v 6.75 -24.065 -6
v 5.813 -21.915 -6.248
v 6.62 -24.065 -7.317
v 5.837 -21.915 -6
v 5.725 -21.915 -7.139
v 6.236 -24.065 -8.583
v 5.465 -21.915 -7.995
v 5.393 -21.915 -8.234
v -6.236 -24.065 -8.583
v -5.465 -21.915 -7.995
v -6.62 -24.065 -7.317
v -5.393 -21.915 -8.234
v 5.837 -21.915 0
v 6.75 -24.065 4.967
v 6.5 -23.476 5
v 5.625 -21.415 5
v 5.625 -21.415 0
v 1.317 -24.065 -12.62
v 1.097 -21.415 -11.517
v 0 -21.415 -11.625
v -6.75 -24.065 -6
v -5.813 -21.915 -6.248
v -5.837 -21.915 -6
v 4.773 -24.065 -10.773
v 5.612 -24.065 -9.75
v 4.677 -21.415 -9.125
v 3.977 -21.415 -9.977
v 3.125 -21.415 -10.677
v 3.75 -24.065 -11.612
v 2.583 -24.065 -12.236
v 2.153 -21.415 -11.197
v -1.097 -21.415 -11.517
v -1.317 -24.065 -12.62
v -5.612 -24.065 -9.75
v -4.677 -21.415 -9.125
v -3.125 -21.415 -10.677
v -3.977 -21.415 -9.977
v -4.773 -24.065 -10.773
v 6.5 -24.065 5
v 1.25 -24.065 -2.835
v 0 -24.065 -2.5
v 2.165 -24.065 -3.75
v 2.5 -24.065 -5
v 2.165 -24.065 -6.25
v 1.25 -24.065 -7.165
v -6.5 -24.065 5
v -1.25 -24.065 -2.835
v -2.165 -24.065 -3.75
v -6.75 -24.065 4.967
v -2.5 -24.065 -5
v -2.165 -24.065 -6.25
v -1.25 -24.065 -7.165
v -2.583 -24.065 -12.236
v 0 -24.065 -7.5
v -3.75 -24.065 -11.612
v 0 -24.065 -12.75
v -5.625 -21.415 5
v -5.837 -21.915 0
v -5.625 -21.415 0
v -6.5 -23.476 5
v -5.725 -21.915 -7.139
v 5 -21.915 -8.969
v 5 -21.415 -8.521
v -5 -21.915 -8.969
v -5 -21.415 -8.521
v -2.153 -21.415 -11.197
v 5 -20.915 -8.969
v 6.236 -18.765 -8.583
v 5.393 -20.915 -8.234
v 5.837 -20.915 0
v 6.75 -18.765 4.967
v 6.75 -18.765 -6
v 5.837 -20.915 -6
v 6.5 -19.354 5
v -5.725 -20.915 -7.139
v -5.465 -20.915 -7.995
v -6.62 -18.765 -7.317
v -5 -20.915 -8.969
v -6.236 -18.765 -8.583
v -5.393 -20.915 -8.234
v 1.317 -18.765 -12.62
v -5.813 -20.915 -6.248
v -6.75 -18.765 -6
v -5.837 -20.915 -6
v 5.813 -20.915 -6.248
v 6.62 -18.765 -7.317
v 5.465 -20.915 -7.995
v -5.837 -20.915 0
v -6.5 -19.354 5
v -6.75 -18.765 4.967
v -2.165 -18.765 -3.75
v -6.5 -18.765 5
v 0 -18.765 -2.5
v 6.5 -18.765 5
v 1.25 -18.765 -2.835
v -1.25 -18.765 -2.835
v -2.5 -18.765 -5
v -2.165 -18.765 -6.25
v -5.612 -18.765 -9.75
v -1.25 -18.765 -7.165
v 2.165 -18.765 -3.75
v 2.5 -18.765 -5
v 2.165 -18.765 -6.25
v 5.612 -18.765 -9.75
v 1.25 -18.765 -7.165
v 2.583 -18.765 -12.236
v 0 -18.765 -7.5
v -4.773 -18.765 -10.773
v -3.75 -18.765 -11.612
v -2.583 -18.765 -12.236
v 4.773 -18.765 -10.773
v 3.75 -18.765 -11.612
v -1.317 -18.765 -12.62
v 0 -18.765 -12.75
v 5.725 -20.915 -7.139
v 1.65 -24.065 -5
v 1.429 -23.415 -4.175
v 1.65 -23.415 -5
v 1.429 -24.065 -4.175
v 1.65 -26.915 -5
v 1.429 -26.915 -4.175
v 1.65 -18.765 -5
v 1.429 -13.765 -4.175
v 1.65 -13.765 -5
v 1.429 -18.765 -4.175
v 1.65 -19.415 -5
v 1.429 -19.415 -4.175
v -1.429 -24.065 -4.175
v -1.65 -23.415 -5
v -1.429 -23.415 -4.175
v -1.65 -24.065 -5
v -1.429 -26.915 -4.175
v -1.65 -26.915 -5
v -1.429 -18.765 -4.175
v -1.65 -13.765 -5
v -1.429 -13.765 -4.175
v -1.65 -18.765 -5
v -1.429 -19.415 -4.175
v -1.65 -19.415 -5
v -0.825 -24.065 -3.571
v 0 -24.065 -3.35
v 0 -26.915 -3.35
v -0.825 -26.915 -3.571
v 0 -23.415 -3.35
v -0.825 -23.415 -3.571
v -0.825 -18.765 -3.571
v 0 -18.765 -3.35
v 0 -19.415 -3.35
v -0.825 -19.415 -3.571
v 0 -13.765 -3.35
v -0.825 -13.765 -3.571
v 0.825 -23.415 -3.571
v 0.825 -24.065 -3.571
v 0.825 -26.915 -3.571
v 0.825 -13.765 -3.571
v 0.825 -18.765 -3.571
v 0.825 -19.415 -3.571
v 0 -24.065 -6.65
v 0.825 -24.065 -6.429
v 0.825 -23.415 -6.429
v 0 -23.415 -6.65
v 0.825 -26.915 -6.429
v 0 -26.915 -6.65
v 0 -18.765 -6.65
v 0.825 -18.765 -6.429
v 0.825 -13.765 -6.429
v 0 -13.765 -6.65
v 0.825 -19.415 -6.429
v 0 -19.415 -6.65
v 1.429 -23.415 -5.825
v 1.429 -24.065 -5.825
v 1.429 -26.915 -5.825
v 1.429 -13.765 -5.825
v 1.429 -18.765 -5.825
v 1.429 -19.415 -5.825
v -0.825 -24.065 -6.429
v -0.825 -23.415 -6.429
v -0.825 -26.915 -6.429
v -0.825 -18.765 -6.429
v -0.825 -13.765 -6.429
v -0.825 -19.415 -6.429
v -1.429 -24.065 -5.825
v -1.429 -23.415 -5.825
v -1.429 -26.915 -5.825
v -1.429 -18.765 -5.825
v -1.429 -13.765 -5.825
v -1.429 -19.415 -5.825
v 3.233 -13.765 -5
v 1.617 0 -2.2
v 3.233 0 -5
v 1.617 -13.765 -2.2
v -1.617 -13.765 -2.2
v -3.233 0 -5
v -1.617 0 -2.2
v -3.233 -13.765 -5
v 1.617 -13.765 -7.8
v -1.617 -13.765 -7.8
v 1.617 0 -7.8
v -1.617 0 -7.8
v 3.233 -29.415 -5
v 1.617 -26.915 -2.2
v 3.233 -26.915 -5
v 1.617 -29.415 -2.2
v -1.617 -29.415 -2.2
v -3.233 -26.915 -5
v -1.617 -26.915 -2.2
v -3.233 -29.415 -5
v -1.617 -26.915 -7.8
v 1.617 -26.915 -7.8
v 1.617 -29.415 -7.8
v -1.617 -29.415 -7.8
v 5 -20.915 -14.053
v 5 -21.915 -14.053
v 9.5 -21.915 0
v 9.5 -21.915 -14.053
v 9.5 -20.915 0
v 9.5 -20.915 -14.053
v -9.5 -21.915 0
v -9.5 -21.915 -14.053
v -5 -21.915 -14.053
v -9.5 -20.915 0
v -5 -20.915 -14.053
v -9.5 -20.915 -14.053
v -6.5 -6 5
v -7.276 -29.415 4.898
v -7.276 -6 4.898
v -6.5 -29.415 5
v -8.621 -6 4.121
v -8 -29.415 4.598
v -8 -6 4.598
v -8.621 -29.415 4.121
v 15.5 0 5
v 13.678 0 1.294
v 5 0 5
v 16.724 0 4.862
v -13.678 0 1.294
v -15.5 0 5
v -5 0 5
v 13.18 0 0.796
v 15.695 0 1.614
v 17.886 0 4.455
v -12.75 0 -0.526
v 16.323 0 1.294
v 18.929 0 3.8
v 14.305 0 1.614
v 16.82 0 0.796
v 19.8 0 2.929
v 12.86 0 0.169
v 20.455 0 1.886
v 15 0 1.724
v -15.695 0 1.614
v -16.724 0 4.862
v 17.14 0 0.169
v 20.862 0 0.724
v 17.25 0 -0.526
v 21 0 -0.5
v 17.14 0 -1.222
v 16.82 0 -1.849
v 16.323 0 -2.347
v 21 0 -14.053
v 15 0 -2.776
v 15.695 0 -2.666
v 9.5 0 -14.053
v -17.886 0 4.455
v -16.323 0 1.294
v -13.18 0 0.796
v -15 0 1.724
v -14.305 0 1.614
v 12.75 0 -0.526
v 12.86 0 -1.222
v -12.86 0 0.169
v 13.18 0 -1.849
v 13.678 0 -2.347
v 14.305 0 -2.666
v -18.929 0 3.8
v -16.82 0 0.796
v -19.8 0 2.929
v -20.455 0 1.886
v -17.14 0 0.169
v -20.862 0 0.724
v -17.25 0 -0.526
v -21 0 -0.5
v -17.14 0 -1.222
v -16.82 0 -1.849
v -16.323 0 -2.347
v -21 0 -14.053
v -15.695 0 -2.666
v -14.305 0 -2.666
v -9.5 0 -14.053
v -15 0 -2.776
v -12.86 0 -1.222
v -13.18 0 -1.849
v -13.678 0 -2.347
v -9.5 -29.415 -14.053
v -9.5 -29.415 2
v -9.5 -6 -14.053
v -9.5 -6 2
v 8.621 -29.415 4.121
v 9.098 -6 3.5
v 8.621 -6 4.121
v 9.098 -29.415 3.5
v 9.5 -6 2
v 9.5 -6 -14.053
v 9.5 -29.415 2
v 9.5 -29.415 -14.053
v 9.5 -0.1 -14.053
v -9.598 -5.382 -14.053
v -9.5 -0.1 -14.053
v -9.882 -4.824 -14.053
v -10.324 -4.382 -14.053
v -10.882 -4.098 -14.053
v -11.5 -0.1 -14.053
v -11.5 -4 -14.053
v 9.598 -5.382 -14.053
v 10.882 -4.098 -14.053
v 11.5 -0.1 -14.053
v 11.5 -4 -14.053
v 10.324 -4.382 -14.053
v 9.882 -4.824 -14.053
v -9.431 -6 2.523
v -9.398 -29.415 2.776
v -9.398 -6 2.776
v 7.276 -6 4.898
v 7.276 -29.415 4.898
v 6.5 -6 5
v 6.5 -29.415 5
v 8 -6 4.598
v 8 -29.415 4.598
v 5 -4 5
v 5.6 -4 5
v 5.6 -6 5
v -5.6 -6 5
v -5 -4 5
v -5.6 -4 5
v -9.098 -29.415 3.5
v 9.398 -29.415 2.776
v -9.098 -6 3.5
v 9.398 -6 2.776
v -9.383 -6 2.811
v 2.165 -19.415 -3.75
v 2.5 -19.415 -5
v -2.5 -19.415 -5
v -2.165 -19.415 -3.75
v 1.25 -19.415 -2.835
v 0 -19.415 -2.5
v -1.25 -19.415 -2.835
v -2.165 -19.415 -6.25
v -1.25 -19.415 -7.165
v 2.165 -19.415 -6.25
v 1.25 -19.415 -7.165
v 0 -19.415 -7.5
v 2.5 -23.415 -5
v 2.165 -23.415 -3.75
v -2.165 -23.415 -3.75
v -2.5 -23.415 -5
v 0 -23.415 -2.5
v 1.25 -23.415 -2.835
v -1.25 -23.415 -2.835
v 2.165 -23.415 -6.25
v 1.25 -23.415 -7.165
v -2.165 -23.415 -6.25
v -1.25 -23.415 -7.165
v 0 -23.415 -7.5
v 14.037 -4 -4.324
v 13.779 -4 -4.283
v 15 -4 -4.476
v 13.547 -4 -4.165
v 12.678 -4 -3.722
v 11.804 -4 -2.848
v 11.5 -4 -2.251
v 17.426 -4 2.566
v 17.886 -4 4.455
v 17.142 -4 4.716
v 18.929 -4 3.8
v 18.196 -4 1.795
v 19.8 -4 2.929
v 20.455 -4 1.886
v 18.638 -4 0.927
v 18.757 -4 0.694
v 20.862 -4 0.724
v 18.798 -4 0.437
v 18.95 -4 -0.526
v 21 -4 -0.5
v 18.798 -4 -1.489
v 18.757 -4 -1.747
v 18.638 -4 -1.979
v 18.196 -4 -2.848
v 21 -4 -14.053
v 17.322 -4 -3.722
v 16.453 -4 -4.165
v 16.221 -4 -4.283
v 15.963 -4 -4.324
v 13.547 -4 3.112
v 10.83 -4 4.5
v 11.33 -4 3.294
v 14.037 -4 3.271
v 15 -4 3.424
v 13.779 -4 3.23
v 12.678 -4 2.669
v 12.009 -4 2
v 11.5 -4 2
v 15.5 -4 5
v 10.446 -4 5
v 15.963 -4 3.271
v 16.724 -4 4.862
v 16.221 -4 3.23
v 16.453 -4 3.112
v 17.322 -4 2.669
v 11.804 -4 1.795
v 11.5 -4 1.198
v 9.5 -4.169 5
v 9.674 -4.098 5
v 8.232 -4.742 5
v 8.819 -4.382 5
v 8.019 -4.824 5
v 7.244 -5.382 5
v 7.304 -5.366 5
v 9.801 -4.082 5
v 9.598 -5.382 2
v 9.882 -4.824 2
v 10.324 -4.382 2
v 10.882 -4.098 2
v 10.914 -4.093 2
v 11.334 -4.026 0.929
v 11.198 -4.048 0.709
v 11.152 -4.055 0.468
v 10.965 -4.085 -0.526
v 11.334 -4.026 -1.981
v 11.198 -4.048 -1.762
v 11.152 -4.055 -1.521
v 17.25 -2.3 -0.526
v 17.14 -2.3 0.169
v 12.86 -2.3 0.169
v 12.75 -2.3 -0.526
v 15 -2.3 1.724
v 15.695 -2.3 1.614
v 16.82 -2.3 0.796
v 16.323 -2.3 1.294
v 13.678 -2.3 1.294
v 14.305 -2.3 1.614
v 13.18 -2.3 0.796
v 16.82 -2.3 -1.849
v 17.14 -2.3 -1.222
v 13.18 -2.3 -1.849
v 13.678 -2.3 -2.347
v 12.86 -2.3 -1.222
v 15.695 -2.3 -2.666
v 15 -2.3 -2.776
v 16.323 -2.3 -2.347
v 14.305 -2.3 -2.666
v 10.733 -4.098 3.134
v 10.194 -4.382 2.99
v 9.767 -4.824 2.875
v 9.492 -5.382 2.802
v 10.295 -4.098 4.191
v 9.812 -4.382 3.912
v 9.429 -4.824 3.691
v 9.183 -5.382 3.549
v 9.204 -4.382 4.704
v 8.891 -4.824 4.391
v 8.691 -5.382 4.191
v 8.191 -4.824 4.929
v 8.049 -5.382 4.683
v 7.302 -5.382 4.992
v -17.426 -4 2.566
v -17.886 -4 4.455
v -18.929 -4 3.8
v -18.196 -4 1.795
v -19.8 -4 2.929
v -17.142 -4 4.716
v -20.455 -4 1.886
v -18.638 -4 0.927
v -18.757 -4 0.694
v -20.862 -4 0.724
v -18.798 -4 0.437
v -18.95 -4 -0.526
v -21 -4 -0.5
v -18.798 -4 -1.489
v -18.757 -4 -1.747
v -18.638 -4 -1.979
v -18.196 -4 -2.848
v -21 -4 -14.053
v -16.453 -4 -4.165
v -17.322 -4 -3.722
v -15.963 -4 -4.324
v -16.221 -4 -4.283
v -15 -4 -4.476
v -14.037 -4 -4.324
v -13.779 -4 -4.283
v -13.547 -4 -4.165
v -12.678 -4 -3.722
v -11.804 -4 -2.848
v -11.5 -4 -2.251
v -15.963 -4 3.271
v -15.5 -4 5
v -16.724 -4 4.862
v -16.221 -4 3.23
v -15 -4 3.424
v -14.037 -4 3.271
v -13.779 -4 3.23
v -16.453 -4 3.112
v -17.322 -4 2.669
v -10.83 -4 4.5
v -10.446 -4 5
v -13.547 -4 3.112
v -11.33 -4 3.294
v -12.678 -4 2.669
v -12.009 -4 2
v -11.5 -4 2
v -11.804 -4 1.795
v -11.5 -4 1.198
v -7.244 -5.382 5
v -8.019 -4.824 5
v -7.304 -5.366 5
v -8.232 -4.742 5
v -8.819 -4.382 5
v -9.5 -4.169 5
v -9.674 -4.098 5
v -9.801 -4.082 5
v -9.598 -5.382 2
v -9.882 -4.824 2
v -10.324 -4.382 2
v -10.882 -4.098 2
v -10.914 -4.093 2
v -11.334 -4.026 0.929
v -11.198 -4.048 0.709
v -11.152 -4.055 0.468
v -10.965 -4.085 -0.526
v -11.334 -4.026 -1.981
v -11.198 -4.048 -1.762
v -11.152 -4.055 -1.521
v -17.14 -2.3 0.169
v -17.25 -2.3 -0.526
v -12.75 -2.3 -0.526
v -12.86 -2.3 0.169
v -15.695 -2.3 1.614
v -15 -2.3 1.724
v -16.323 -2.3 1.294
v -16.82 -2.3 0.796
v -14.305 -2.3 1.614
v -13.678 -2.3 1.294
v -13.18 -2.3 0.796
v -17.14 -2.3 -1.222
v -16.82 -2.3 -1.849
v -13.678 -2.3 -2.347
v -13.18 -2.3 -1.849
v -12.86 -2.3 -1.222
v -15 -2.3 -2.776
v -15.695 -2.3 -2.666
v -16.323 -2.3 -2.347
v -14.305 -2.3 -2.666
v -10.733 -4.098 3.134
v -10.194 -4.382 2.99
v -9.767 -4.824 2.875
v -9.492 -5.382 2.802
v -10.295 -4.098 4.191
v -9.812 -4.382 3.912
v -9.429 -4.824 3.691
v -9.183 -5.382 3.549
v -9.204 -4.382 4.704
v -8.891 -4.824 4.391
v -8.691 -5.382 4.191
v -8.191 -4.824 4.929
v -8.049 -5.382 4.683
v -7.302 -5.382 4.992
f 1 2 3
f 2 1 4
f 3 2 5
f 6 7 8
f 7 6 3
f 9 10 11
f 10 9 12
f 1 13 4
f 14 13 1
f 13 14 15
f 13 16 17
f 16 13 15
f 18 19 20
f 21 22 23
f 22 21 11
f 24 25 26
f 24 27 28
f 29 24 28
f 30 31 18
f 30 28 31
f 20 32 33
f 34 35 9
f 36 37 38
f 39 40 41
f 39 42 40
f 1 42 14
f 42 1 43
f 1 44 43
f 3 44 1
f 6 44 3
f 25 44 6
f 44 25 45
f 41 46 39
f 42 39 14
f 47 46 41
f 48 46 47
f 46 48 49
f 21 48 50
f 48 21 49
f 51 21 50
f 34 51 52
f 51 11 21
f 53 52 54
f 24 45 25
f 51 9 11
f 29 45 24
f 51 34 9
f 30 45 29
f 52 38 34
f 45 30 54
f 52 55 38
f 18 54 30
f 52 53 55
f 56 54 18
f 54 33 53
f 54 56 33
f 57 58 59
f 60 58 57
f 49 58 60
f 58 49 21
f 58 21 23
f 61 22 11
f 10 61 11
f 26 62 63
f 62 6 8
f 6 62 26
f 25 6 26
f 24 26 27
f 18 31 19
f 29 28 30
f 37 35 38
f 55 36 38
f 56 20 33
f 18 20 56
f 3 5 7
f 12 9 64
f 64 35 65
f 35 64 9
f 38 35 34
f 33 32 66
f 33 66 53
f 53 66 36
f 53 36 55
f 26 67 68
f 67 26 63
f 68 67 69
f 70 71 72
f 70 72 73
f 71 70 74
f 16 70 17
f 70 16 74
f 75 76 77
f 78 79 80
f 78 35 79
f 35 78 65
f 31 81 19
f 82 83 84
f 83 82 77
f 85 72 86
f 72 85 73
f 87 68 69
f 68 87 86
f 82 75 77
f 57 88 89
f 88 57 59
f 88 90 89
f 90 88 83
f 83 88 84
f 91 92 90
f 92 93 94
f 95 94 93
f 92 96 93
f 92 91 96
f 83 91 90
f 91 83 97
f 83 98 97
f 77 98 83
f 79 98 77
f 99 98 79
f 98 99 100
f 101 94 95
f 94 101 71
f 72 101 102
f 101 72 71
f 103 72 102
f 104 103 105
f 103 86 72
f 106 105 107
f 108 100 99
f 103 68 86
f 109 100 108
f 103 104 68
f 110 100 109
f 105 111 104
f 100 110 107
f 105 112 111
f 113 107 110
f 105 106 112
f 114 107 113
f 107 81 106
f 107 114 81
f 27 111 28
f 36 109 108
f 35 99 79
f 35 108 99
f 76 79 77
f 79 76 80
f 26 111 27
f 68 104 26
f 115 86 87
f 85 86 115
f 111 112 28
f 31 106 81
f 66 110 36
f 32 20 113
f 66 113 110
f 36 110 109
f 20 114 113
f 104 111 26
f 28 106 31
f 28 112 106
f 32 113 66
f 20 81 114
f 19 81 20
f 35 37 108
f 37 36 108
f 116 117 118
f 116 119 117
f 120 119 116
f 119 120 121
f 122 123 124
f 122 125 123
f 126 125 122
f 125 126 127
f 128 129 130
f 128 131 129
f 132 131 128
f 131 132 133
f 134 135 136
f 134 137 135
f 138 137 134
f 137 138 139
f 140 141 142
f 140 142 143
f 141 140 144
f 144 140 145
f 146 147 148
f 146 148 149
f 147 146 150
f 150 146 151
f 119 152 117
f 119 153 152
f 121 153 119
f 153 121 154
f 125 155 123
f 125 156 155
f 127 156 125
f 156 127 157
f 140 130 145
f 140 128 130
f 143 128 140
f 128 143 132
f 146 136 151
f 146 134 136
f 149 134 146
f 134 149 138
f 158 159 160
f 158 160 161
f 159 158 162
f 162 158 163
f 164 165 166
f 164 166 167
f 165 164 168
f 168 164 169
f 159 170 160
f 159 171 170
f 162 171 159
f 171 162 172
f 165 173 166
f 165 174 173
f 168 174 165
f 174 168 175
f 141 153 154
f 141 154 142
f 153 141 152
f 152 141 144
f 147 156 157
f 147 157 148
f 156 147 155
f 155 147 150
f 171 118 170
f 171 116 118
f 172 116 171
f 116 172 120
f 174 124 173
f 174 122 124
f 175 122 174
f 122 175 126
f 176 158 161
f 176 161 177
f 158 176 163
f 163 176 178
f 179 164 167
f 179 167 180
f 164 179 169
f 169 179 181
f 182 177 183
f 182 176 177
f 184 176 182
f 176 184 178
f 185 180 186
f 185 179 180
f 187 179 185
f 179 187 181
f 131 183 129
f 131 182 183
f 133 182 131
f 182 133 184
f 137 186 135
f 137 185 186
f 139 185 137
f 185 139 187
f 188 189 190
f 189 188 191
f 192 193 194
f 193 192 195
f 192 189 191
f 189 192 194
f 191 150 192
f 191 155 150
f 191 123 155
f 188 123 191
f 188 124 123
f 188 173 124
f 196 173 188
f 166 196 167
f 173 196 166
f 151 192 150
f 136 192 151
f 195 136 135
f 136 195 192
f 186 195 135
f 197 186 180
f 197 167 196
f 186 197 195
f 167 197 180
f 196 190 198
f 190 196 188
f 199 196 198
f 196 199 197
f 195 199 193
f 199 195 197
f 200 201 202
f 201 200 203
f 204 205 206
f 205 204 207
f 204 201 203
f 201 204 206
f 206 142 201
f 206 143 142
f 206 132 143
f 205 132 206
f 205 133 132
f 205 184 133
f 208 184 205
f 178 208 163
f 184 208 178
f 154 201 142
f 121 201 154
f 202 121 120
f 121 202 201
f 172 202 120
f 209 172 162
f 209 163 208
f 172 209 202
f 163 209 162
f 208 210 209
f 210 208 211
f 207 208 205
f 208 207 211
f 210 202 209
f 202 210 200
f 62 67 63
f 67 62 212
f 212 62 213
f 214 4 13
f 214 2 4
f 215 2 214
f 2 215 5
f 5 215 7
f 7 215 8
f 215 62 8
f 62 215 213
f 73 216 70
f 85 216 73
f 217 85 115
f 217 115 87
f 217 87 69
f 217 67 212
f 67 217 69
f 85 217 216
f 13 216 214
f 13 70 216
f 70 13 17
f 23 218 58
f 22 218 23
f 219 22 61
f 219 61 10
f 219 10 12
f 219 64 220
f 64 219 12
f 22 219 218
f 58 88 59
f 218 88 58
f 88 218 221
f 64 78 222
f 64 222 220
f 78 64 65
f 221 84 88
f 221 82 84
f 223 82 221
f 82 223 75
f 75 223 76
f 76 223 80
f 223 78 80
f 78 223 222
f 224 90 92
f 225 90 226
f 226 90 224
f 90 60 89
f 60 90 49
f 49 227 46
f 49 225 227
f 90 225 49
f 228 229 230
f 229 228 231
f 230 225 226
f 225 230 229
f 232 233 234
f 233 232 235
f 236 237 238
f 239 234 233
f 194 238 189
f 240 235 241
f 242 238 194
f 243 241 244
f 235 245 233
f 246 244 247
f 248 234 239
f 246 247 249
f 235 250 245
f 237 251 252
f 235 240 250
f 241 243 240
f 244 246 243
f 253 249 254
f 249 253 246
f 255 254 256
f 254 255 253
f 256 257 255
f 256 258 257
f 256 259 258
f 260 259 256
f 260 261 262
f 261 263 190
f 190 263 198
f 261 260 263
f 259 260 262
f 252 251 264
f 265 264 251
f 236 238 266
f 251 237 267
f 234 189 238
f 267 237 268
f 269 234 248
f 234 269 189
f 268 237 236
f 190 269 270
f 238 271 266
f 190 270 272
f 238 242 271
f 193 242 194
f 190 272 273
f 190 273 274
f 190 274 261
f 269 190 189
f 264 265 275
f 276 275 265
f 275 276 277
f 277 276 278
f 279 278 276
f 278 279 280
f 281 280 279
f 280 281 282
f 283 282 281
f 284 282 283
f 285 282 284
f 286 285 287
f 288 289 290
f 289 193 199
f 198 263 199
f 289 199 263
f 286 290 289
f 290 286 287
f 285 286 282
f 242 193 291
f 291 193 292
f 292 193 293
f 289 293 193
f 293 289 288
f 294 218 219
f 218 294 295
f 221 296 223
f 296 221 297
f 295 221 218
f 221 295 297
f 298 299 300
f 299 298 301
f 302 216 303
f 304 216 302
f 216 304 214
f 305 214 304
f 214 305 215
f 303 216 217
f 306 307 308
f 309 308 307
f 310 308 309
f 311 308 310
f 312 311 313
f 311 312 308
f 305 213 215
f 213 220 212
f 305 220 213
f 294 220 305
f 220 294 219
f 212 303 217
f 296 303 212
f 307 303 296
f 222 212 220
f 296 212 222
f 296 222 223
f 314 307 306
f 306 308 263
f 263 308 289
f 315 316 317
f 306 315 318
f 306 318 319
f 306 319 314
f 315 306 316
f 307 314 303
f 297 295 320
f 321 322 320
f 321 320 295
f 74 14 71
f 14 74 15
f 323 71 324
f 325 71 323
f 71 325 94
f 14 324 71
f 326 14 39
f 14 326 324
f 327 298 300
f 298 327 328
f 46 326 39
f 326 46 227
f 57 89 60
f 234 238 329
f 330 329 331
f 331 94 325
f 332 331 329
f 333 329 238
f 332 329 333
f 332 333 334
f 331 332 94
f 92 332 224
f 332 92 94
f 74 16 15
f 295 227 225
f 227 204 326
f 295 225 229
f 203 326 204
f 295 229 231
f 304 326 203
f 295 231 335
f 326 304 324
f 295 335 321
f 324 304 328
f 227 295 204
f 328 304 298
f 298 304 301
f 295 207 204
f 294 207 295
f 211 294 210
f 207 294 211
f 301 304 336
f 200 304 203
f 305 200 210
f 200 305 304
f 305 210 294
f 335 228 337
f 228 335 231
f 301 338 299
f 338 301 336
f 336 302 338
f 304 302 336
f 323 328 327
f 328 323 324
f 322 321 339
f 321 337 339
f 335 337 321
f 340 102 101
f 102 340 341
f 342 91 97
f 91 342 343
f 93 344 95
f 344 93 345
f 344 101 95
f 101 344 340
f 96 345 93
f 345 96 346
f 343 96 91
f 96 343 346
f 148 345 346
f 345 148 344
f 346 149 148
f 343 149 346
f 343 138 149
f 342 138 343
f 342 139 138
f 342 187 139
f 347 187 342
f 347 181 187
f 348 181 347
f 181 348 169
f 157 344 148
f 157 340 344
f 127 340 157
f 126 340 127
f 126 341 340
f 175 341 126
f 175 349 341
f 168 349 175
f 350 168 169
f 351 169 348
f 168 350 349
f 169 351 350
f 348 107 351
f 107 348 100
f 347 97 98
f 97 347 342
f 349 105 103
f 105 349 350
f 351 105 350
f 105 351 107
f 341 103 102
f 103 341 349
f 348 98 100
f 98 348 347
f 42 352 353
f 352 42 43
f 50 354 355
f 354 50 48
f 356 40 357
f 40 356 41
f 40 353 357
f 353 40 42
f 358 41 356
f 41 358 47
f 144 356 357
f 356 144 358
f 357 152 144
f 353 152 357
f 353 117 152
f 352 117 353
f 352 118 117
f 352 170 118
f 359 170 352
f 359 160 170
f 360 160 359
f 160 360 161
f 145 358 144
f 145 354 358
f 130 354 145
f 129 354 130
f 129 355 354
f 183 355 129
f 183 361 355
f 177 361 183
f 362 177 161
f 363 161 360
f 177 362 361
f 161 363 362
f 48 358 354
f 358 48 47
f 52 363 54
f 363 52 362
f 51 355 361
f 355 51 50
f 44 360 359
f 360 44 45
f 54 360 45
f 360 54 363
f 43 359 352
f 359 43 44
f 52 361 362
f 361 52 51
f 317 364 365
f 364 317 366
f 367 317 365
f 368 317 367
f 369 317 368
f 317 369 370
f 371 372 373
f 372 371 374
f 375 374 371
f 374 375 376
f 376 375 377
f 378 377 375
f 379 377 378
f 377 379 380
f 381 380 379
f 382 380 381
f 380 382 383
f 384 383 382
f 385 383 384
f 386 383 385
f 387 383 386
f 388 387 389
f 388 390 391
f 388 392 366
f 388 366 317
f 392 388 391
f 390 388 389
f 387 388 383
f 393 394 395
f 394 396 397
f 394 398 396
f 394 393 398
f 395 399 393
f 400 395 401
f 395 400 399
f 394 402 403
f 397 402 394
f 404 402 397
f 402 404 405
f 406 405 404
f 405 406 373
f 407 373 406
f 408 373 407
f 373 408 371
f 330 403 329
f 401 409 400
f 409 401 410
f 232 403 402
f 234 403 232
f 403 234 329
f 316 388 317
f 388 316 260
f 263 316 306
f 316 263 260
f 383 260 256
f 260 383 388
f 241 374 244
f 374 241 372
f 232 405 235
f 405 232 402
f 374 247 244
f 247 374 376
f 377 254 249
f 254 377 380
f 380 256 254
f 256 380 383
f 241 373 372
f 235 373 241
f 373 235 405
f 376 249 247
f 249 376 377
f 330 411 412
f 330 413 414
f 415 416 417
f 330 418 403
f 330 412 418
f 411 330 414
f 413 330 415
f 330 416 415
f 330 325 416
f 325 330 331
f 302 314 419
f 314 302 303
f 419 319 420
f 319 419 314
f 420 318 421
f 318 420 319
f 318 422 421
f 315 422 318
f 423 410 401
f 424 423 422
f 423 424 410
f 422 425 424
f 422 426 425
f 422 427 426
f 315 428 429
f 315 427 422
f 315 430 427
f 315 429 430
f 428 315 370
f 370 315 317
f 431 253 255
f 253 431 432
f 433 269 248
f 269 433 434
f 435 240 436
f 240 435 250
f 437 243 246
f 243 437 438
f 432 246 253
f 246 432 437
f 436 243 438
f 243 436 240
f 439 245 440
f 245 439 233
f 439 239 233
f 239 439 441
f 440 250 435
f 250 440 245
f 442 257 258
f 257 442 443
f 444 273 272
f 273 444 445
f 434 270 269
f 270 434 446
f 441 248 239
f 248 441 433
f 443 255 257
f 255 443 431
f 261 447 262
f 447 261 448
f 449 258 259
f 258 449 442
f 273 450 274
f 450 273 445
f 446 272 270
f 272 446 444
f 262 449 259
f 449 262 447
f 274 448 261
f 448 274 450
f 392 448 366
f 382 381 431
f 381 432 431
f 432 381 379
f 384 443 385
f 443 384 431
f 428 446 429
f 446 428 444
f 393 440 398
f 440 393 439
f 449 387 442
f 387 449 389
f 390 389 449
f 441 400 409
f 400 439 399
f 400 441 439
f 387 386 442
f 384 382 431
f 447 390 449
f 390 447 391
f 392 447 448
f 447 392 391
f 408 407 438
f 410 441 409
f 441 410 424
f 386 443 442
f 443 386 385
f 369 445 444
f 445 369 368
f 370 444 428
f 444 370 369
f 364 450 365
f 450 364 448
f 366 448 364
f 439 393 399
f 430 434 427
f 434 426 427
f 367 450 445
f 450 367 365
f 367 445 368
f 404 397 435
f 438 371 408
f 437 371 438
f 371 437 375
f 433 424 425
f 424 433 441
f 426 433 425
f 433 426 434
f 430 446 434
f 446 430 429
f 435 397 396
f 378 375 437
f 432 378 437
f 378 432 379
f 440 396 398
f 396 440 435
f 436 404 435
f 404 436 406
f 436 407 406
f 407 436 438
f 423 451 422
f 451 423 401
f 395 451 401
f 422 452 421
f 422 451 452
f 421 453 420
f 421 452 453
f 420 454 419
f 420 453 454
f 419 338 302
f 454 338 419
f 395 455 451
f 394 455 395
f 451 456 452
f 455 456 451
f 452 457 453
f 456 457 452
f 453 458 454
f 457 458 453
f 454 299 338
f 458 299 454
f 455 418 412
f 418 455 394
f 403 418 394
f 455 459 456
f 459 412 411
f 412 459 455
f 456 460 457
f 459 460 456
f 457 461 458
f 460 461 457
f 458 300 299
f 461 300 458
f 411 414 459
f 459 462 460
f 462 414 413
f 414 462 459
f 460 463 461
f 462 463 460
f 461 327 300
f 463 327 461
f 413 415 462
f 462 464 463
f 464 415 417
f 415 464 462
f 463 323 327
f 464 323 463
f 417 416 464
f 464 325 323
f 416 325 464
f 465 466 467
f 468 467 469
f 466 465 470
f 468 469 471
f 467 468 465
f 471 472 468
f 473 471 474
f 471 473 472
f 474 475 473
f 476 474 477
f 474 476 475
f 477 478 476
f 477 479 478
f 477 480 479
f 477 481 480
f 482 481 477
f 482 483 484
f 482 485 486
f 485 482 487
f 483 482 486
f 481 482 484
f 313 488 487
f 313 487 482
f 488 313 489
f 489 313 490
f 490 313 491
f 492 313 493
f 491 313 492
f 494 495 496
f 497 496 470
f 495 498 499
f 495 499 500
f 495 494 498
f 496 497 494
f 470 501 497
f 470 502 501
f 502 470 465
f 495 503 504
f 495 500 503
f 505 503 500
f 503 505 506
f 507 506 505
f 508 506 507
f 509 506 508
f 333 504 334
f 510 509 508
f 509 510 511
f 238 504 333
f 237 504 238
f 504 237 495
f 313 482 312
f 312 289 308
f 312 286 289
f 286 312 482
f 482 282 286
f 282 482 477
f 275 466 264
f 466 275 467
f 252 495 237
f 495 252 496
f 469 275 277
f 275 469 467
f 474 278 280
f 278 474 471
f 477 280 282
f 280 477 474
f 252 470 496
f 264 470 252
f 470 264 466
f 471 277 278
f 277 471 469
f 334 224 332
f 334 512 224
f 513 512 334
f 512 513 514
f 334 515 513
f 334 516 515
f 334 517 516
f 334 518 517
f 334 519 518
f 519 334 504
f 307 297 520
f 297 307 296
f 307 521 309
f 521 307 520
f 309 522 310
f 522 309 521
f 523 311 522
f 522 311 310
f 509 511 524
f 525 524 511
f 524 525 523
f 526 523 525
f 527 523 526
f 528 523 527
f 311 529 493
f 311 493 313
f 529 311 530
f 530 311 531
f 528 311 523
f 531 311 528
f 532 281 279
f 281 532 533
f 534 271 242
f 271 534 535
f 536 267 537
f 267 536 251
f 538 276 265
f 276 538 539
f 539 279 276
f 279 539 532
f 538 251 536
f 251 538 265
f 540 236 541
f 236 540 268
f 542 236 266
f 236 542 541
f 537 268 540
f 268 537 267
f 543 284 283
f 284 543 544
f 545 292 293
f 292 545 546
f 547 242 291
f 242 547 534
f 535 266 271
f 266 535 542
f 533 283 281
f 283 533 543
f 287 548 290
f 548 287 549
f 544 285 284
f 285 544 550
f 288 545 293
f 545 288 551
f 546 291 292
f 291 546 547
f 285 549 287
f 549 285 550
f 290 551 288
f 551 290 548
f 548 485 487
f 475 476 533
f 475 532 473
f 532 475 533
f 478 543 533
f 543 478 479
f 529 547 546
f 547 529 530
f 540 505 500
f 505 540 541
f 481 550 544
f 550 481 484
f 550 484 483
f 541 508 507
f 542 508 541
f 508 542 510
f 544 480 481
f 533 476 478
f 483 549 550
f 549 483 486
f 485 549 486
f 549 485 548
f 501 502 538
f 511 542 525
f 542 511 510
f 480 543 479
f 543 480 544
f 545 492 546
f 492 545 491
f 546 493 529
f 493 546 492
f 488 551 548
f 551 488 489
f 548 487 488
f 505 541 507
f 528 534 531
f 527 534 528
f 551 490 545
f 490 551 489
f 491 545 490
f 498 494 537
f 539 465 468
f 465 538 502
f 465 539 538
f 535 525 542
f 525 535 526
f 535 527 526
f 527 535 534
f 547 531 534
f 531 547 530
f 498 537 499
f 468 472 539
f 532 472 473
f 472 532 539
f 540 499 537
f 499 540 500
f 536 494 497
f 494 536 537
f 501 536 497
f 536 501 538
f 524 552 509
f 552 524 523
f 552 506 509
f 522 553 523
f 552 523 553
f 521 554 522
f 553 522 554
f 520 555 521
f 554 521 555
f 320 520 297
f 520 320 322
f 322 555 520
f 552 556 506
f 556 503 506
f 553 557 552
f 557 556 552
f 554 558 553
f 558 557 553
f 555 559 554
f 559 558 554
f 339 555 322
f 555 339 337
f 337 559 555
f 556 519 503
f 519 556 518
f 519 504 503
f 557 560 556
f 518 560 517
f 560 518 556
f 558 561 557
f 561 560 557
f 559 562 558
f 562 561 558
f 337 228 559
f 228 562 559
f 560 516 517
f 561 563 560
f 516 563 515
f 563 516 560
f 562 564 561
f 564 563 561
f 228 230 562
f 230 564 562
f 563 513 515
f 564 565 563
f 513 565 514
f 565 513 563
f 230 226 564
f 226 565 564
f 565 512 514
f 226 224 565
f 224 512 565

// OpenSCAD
// file: parameters.scad
// Parameters shared between modules
Base_th = 4;
Beam_width = 15;
Wiggle = 0.25;
Fat_beam_width = Beam_width + Wiggle;
Beam_length = 400;
Wall_th = 2.5;
Min_beam_width = 12.5;
Max_beam_width = 17.5;
Zip_th = 2;
Zip_h = Zip_th + Max_beam_width - Min_beam_width;
Zip_w = 5.0;
Nema17_cube_width          = 42.43;
Nema17_screw_hole_width    = 43.74; // Opposite corner screws
Nema17_ring_diameter       = 22;
Nema17_cube_height         = 39.36;
Nema17_shaft_height        = 63.65;
Nema17_ring_height         = 2;
Nema17_shaft_radius        = 5/2;
b608_outer_dia = 22.2;
b608_width = 7.05;
b608_bore_r = 4;
Gap_between_sandwich_and_plate = 1.5 + Base_th; // 1.5 mm for wiggle
Motor_bracket_flerp_r = 6;
Motor_bracket_flerp = 14;
Motor_bracket_cw = Nema17_cube_width + 6;
Motor_bracket_att_ang = 50;
Mounting_screw_d = 4.5;
Mounting_screw_head_d = 14;
Spool_outer_wall_th = 4;

// Corner clamp parameters
Cc_l1 = (Fat_beam_width+2*Wall_th)*2*sqrt(3);
Cc_rad_b = 4;
Cc_action_point_from_mid = Cc_l1/sqrt(3)-2*Cc_rad_b-1.3;  // 1.3 chosen arbitrarily
Cc_plastic_length = sqrt(Cc_action_point_from_mid*Cc_action_point_from_mid
                       - (Cc_action_point_from_mid/2)*(Cc_action_point_from_mid/2));

// The distance between the two action points on the mover
Sidelength = Beam_length + 2*Cc_plastic_length;

/////// Gear parameters ////////////
Circular_pitch = 262;
Motor_teeth = 10;
Gear_height = 21.4-3;
Motor_pitch                      = (Motor_teeth*Circular_pitch/360);
Motor_pitch_diametrial           = Motor_teeth/(2*Motor_pitch);
Motor_outer_radius               = Motor_pitch + 1/Motor_pitch_diametrial;
Spool_teeth = 100;
Spool_r = 65;
Spool_height = 8;
Spool_pitch                      = (Spool_teeth*Circular_pitch/360);
Spool_pitch_diametrial           = Spool_teeth/(2*Spool_pitch);
Spool_outer_radius               = Spool_pitch + 1/Spool_pitch_diametrial;
Sep_disc_radius = 161.83/2; // Made to match 255 teeth gt2 pulley
Motor_bracket_depth = Gear_height+1+7+Nema17_ring_height+1+Gap_between_sandwich_and_plate;
Spool_core_flerp0 = 16+3;

/////// Lineroller parameters ////////////
b623_width  = 4;
b623_bore_r = 3/2;
b623_vgroove_big_r = 12/2;
b623_vgroove_small_r = 10/2;
b623_outer_dia = 10;

Depth_of_roller_base = 18;
Roller_flerp = 6;
Roller_l = 42;
Roller_fl = (Roller_l - Depth_of_roller_base)/2;

Line_roller_wall_th = 5;

Line_roller_ABC_winch_h =  Gap_between_sandwich_and_plate
                           + Sep_disc_radius
                           - Spool_r
                           + Depth_of_roller_base/2
                           + b623_vgroove_small_r;


Ptfe_r = 2.1;
Roller_base_r = 8;
Screw_h = 2;
Screw_head_h = 2;
Spool_center_bearing_wall_th = 5;
Corner_clamp_bearings_center_to_center = 15;
Anchor_bearings_center_to_center = Corner_clamp_bearings_center_to_center + b623_outer_dia;

//// Lineroller anchor parameters /////

Back_bearing_x = b623_vgroove_big_r + 1.5;
Front_bearing_x = -b623_vgroove_big_r - 5;
Move_tower = -12.2;
Lower_bearing_z = 13;
Higher_bearing_z = Lower_bearing_z + Corner_clamp_bearings_center_to_center;

//// Cable Clamp parameters /////
Bit_width = 12;
Cable_r=2.5;


//// Donkey and encoder parameters /////

Donkey_shaft_d = 6;
Donkey_h = 65.12;
Donkey_body_d = 50;
Donkey_feet_th = 3.5;

Encoder_LDP3806_shaft_d = 6;
Encoder_LDP3806_d = 38;

// Belt drive parameters
GT2_belt_width = 6.5;
GT2_gear_height = GT2_belt_width + 2;
GT2_motor_gear_height = 16;
GT2_motor_gear_outer_dia = 16;
GT2_spool_gear_teeth = 255;
GT2_motor_gear_teeth = 20;
Torx_depth = GT2_gear_height/2;
Belt_roller_h = 47;

// Spacer parameters
Sandwich_ABC_width = 2*(1+Spool_height) + GT2_gear_height;
Sandwich_D_width = 3*(1+Spool_height) + GT2_gear_height;

Spacer_ABC_width = Sandwich_ABC_width - 2*b608_width;
Spacer_D_width = Sandwich_D_width -2*b608_width;


spd = Spool_height+GT2_gear_height;
// Horizontal_deflector_cube_y_size must be exact this number
// because we want to deflect AB-lines
// 60 degrees on the ceiling unit, and we want to put two
// deflectors in a row and get a distance between bearings
// that maintain the distance d when deflecting 60 degrees
Horizontal_deflector_cube_y_size = (2/sqrt(3))*spd;


// Top plate parameters needed for layout slicer
Yshift_top_plate = -319;
// main file
include <parameters.scad>
use <util.scad>


// Investigate layers
//difference(){
//  horizontal_line_deflector();
//  translate([0,0,72.0])
//  cube(100,center=true);
//}

rotate([90,0,0])
horizontal_line_deflector();
module horizontal_line_deflector(twod=false){
  cx = b623_vgroove_big_r*2 + 7;
  cy = Horizontal_deflector_cube_y_size;
  bz = Gap_between_sandwich_and_plate + Sep_disc_radius - Spool_r;
  bit_y = cy;

  pl = 5.5;
  ybit = -cy+5+bit_y/2;
  ybit_hole = ybit + 4;
  module bit(){
    rotate([0,0,90])
      translate([-Bit_width/2, -bit_y/2, 0])
      difference(){
        one_rounded_cube2([Bit_width+4,bit_y,Base_th], 5.5, $fn=28);
      }
  }

  if(!twod){
    extra_b_height = 1.3; // half of this above, half below
    extra_b_width = 1.5; // half of this to the left of bearing
    full_h = bz+8;
    take_away_angle = 90;

    // something to aim for
    //translate([0,-b623_vgroove_small_r,bz])
    //  b623_vgroove();
    difference(){
      translate([-cx/2, -cy+5, 0])
        //cube([cx, cy, bz+5]);
        ydir_rounded_cube2([cx, cy, full_h], 3, $fn=4*6);
      translate([0,-b623_vgroove_small_r-1,bz]){
        //#cylinder(r=b623_vgroove_big_r+1,h=b623_width+extra_b_height,center=true);
        scale([(b623_vgroove_big_r+extra_b_width/2)/b623_vgroove_big_r,
            (b623_vgroove_big_r+extra_b_width/2)/b623_vgroove_big_r,
            (b623_width + extra_b_height)/b623_width]){
          elong_b623_vgroove(20);
          //cylinder(r=b623_vgroove_big_r, h=b623_width, center=true);
        }
      }
      translate([0,-b623_vgroove_small_r,-1]){
        cylinder(d=3.3, h=100, center=true, $fn=12); // The M3 screw
        nut(h=bz+1-b623_width/2-extra_b_height/2 - 5);
        translate([0,0,full_h - 1.5])
          nut(h=10);
      }
      sly = 40;
      for(k=[0,1])
        mirror([k,0,0])
          translate([b623_vgroove_small_r,-sly,bz-0.5])
          cube([100,sly, 1]);

      //translate([(cx-4)/2, ])
      //cube([cx-4, b623_vgroove_big_r*2 + 2, b623_width+2]);
    }

    shoulder_height = extra_b_height/2;
    for(hl=[-(b623_width+extra_b_height)/2-2+shoulder_height,
        (b623_width+extra_b_height)/2 - shoulder_height])
      translate([0,-b623_vgroove_small_r, hl+bz])
        difference(){
          cylinder(d=5, h=2, $fn=12);
          translate([0,0,-1])
            cylinder(d=3.3, h=4, $fn=12); // The ring to rest b623_vgroove bore on
        }

    for(k=[0,1])
      mirror([k,0,0]){
        difference(){
          union(){
            translate([cx/2,-cy+5,Base_th])
              rotate([0,-90,-90])
              inner_round_corner(r=2, h=cy, $fn=4*5, back=Base_th-0.1);
            translate([cx/2+pl,ybit,0])
              rotate([0,0,90])
              bit();
          }
          translate([cx/2,5,Base_th])
            corner_rounder();
          translate([cx/2+pl,ybit_hole,2.3])
            Mounting_screw_countersink();
        }
      }
  } else { //twod
    difference(){
      translate([-cx/2-Bit_width+0.5, -cy+5])
        ydir_rounded_cube2_2d([cx+2*Bit_width-1, cy], 5.5, $fn=28);
      for(k=[0,1])
        mirror([k,0])
          translate([cx/2+pl,ybit_hole])
          circle(d=Mounting_screw_d, $fn=12*4);
    }
  }
}
